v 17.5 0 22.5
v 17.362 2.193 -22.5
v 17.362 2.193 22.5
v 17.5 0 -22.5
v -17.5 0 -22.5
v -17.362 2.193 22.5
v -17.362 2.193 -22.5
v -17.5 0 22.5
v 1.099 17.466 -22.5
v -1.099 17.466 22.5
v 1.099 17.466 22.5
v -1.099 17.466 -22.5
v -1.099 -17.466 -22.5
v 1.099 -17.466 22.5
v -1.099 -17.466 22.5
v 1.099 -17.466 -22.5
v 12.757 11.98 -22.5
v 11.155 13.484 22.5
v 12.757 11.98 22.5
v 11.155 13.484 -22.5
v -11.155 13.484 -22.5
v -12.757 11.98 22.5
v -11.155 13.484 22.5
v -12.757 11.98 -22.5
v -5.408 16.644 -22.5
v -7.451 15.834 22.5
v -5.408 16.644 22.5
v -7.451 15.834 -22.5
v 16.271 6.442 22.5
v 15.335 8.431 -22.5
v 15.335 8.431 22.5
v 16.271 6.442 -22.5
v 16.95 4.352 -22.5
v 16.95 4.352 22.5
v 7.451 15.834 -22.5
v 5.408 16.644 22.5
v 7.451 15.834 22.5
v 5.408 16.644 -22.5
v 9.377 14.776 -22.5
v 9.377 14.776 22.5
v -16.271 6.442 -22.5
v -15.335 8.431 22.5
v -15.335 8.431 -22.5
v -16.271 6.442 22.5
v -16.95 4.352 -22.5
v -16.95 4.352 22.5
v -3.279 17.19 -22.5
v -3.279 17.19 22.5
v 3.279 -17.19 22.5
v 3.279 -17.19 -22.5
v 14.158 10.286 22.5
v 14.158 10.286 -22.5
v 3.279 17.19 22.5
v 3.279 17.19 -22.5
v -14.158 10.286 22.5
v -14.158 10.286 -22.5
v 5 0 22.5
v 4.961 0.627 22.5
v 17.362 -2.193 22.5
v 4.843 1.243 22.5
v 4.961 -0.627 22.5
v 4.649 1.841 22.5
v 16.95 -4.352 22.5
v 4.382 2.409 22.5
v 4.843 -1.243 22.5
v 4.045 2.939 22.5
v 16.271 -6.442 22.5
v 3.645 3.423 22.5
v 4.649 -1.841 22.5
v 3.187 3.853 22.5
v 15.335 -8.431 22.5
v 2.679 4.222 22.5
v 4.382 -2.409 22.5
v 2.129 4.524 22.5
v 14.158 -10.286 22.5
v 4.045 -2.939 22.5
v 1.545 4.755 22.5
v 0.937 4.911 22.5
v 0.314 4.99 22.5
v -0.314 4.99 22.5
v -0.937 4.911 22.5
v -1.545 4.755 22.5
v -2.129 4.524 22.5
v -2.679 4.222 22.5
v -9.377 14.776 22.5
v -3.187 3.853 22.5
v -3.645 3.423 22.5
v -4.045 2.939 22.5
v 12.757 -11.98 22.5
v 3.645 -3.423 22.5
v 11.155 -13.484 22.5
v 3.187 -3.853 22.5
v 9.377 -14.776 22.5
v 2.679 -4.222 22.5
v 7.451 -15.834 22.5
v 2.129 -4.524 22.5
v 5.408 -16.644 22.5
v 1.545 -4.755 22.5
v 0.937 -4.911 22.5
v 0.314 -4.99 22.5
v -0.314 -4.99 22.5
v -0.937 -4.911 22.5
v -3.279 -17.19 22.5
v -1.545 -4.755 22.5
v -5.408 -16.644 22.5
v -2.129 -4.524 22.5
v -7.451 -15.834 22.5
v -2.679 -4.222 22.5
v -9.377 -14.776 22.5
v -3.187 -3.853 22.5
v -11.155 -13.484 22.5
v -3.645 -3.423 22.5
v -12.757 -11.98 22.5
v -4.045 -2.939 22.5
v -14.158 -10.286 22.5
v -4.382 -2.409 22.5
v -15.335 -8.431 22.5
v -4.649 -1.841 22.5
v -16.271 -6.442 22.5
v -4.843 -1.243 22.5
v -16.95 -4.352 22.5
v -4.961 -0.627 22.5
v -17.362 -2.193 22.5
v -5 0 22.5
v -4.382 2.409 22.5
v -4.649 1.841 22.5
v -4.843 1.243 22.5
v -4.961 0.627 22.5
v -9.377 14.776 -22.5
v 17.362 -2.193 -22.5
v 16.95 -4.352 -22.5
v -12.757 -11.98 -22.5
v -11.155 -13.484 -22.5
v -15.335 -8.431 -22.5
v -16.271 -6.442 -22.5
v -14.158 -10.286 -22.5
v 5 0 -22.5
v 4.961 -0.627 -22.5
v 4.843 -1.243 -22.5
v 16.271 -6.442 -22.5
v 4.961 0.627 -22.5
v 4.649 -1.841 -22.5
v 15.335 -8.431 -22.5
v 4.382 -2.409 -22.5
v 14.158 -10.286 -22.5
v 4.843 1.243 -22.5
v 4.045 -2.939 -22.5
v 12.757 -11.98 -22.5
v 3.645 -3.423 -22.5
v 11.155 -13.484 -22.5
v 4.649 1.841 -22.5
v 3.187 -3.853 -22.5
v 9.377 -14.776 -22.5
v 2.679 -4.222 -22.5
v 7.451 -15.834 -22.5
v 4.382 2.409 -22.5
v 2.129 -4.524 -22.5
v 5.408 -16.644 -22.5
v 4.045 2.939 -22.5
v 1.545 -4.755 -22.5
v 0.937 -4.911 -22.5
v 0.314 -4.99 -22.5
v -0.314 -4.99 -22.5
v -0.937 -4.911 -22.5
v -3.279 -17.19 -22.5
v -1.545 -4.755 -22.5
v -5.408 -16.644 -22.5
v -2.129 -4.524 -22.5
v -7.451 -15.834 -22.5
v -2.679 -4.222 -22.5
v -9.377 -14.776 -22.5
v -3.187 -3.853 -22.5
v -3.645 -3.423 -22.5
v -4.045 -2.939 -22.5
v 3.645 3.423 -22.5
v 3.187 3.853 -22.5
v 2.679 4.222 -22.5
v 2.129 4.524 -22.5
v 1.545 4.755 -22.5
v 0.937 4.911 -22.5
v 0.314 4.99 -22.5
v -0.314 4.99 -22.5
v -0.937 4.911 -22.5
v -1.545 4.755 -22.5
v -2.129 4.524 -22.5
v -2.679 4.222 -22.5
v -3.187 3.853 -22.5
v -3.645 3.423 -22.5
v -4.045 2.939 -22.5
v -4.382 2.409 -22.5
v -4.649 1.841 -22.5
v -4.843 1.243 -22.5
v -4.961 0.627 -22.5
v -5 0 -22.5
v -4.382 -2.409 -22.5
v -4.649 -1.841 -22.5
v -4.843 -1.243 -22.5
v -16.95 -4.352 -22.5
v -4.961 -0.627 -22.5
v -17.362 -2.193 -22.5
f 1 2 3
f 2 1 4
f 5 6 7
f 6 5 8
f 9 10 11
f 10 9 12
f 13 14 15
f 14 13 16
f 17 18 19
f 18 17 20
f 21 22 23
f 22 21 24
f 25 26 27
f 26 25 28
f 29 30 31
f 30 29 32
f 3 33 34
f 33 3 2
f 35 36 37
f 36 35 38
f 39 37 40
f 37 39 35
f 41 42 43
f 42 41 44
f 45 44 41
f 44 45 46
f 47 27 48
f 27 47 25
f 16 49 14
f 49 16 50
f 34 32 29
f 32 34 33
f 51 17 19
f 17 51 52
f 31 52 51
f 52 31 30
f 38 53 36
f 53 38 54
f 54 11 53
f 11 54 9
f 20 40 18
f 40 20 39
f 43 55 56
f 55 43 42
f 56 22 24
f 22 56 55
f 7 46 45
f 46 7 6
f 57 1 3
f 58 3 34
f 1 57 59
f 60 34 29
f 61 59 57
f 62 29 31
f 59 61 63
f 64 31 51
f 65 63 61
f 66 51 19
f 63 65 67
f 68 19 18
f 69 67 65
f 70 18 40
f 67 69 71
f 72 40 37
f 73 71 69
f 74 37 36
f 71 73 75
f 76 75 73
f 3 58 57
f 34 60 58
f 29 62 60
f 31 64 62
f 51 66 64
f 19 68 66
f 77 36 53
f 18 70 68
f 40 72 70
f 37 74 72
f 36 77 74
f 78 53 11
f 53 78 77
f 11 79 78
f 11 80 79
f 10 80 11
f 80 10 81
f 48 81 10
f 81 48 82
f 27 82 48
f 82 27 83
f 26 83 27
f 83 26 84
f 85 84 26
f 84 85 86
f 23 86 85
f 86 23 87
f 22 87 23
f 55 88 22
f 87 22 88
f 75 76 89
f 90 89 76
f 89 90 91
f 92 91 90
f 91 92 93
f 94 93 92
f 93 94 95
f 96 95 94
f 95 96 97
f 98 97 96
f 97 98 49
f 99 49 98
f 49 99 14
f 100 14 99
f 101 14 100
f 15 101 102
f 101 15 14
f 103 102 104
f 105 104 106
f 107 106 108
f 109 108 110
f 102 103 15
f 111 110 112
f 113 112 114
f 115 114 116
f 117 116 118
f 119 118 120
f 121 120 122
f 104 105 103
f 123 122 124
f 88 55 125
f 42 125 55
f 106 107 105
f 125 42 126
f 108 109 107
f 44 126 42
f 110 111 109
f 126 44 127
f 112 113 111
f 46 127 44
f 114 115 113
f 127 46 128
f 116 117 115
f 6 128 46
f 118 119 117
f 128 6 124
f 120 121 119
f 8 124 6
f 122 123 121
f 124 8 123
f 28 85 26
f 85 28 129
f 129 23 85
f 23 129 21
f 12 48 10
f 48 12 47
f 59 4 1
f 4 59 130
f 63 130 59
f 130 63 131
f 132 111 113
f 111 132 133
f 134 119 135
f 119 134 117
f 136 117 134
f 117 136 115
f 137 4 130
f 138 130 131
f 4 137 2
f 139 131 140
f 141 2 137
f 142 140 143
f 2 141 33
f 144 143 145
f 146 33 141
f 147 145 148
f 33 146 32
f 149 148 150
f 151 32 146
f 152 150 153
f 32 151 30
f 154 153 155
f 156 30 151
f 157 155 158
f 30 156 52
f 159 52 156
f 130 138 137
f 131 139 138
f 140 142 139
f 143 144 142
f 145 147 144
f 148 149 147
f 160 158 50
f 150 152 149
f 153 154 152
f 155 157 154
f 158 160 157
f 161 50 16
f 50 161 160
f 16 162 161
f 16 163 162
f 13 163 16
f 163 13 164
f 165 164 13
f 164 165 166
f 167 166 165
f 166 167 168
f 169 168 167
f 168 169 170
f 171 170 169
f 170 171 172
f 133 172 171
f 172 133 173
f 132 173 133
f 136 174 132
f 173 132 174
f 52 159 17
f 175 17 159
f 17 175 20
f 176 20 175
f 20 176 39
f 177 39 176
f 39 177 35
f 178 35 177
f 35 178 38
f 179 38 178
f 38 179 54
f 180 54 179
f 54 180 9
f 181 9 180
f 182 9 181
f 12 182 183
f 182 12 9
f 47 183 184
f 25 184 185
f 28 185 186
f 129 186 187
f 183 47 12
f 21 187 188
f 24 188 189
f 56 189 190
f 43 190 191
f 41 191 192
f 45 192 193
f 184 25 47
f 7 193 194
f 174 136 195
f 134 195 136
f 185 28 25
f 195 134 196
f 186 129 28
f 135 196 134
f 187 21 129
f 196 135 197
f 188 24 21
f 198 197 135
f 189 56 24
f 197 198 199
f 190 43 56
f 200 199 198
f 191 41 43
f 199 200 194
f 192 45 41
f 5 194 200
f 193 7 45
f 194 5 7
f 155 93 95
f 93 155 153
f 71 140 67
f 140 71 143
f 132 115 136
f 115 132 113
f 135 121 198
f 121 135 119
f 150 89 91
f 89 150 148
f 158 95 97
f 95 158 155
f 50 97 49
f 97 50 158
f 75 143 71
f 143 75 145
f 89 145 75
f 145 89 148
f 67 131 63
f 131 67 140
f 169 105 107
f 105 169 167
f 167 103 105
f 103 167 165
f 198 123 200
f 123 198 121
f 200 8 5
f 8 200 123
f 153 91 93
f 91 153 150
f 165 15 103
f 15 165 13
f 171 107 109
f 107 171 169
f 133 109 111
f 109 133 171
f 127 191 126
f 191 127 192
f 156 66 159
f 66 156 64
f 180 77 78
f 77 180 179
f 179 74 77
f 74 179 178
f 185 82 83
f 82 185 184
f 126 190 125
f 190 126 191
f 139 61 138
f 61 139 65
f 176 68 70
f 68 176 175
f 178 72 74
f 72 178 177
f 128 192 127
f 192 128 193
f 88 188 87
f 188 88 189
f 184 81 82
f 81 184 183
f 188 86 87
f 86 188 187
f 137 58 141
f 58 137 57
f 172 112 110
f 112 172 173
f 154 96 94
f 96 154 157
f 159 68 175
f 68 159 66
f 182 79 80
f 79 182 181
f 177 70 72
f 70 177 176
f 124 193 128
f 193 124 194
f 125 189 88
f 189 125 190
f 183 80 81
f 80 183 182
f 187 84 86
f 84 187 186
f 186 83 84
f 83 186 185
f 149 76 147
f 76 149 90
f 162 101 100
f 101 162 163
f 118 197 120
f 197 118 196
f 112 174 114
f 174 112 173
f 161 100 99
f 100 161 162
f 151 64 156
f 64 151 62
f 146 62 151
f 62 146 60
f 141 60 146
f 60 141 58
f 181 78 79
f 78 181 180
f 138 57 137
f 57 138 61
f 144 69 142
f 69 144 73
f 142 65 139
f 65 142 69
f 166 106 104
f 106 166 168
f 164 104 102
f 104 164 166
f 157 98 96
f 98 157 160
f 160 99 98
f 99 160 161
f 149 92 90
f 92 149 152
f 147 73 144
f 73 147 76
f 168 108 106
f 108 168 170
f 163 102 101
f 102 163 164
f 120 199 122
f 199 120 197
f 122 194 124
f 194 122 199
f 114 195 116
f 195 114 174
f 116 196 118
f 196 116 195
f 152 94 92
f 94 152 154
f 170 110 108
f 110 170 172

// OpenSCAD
$fn = 50;


difference() {
	union() {
		translate(v = [0, 0, -22.5000000000]) {
			cylinder(h = 45, r = 17.5000000000);
		}
	}
	union() {
		translate(v = [0, 0, -100.0000000000]) {
			cylinder(h = 200, r = 5);
		}
	}
}
